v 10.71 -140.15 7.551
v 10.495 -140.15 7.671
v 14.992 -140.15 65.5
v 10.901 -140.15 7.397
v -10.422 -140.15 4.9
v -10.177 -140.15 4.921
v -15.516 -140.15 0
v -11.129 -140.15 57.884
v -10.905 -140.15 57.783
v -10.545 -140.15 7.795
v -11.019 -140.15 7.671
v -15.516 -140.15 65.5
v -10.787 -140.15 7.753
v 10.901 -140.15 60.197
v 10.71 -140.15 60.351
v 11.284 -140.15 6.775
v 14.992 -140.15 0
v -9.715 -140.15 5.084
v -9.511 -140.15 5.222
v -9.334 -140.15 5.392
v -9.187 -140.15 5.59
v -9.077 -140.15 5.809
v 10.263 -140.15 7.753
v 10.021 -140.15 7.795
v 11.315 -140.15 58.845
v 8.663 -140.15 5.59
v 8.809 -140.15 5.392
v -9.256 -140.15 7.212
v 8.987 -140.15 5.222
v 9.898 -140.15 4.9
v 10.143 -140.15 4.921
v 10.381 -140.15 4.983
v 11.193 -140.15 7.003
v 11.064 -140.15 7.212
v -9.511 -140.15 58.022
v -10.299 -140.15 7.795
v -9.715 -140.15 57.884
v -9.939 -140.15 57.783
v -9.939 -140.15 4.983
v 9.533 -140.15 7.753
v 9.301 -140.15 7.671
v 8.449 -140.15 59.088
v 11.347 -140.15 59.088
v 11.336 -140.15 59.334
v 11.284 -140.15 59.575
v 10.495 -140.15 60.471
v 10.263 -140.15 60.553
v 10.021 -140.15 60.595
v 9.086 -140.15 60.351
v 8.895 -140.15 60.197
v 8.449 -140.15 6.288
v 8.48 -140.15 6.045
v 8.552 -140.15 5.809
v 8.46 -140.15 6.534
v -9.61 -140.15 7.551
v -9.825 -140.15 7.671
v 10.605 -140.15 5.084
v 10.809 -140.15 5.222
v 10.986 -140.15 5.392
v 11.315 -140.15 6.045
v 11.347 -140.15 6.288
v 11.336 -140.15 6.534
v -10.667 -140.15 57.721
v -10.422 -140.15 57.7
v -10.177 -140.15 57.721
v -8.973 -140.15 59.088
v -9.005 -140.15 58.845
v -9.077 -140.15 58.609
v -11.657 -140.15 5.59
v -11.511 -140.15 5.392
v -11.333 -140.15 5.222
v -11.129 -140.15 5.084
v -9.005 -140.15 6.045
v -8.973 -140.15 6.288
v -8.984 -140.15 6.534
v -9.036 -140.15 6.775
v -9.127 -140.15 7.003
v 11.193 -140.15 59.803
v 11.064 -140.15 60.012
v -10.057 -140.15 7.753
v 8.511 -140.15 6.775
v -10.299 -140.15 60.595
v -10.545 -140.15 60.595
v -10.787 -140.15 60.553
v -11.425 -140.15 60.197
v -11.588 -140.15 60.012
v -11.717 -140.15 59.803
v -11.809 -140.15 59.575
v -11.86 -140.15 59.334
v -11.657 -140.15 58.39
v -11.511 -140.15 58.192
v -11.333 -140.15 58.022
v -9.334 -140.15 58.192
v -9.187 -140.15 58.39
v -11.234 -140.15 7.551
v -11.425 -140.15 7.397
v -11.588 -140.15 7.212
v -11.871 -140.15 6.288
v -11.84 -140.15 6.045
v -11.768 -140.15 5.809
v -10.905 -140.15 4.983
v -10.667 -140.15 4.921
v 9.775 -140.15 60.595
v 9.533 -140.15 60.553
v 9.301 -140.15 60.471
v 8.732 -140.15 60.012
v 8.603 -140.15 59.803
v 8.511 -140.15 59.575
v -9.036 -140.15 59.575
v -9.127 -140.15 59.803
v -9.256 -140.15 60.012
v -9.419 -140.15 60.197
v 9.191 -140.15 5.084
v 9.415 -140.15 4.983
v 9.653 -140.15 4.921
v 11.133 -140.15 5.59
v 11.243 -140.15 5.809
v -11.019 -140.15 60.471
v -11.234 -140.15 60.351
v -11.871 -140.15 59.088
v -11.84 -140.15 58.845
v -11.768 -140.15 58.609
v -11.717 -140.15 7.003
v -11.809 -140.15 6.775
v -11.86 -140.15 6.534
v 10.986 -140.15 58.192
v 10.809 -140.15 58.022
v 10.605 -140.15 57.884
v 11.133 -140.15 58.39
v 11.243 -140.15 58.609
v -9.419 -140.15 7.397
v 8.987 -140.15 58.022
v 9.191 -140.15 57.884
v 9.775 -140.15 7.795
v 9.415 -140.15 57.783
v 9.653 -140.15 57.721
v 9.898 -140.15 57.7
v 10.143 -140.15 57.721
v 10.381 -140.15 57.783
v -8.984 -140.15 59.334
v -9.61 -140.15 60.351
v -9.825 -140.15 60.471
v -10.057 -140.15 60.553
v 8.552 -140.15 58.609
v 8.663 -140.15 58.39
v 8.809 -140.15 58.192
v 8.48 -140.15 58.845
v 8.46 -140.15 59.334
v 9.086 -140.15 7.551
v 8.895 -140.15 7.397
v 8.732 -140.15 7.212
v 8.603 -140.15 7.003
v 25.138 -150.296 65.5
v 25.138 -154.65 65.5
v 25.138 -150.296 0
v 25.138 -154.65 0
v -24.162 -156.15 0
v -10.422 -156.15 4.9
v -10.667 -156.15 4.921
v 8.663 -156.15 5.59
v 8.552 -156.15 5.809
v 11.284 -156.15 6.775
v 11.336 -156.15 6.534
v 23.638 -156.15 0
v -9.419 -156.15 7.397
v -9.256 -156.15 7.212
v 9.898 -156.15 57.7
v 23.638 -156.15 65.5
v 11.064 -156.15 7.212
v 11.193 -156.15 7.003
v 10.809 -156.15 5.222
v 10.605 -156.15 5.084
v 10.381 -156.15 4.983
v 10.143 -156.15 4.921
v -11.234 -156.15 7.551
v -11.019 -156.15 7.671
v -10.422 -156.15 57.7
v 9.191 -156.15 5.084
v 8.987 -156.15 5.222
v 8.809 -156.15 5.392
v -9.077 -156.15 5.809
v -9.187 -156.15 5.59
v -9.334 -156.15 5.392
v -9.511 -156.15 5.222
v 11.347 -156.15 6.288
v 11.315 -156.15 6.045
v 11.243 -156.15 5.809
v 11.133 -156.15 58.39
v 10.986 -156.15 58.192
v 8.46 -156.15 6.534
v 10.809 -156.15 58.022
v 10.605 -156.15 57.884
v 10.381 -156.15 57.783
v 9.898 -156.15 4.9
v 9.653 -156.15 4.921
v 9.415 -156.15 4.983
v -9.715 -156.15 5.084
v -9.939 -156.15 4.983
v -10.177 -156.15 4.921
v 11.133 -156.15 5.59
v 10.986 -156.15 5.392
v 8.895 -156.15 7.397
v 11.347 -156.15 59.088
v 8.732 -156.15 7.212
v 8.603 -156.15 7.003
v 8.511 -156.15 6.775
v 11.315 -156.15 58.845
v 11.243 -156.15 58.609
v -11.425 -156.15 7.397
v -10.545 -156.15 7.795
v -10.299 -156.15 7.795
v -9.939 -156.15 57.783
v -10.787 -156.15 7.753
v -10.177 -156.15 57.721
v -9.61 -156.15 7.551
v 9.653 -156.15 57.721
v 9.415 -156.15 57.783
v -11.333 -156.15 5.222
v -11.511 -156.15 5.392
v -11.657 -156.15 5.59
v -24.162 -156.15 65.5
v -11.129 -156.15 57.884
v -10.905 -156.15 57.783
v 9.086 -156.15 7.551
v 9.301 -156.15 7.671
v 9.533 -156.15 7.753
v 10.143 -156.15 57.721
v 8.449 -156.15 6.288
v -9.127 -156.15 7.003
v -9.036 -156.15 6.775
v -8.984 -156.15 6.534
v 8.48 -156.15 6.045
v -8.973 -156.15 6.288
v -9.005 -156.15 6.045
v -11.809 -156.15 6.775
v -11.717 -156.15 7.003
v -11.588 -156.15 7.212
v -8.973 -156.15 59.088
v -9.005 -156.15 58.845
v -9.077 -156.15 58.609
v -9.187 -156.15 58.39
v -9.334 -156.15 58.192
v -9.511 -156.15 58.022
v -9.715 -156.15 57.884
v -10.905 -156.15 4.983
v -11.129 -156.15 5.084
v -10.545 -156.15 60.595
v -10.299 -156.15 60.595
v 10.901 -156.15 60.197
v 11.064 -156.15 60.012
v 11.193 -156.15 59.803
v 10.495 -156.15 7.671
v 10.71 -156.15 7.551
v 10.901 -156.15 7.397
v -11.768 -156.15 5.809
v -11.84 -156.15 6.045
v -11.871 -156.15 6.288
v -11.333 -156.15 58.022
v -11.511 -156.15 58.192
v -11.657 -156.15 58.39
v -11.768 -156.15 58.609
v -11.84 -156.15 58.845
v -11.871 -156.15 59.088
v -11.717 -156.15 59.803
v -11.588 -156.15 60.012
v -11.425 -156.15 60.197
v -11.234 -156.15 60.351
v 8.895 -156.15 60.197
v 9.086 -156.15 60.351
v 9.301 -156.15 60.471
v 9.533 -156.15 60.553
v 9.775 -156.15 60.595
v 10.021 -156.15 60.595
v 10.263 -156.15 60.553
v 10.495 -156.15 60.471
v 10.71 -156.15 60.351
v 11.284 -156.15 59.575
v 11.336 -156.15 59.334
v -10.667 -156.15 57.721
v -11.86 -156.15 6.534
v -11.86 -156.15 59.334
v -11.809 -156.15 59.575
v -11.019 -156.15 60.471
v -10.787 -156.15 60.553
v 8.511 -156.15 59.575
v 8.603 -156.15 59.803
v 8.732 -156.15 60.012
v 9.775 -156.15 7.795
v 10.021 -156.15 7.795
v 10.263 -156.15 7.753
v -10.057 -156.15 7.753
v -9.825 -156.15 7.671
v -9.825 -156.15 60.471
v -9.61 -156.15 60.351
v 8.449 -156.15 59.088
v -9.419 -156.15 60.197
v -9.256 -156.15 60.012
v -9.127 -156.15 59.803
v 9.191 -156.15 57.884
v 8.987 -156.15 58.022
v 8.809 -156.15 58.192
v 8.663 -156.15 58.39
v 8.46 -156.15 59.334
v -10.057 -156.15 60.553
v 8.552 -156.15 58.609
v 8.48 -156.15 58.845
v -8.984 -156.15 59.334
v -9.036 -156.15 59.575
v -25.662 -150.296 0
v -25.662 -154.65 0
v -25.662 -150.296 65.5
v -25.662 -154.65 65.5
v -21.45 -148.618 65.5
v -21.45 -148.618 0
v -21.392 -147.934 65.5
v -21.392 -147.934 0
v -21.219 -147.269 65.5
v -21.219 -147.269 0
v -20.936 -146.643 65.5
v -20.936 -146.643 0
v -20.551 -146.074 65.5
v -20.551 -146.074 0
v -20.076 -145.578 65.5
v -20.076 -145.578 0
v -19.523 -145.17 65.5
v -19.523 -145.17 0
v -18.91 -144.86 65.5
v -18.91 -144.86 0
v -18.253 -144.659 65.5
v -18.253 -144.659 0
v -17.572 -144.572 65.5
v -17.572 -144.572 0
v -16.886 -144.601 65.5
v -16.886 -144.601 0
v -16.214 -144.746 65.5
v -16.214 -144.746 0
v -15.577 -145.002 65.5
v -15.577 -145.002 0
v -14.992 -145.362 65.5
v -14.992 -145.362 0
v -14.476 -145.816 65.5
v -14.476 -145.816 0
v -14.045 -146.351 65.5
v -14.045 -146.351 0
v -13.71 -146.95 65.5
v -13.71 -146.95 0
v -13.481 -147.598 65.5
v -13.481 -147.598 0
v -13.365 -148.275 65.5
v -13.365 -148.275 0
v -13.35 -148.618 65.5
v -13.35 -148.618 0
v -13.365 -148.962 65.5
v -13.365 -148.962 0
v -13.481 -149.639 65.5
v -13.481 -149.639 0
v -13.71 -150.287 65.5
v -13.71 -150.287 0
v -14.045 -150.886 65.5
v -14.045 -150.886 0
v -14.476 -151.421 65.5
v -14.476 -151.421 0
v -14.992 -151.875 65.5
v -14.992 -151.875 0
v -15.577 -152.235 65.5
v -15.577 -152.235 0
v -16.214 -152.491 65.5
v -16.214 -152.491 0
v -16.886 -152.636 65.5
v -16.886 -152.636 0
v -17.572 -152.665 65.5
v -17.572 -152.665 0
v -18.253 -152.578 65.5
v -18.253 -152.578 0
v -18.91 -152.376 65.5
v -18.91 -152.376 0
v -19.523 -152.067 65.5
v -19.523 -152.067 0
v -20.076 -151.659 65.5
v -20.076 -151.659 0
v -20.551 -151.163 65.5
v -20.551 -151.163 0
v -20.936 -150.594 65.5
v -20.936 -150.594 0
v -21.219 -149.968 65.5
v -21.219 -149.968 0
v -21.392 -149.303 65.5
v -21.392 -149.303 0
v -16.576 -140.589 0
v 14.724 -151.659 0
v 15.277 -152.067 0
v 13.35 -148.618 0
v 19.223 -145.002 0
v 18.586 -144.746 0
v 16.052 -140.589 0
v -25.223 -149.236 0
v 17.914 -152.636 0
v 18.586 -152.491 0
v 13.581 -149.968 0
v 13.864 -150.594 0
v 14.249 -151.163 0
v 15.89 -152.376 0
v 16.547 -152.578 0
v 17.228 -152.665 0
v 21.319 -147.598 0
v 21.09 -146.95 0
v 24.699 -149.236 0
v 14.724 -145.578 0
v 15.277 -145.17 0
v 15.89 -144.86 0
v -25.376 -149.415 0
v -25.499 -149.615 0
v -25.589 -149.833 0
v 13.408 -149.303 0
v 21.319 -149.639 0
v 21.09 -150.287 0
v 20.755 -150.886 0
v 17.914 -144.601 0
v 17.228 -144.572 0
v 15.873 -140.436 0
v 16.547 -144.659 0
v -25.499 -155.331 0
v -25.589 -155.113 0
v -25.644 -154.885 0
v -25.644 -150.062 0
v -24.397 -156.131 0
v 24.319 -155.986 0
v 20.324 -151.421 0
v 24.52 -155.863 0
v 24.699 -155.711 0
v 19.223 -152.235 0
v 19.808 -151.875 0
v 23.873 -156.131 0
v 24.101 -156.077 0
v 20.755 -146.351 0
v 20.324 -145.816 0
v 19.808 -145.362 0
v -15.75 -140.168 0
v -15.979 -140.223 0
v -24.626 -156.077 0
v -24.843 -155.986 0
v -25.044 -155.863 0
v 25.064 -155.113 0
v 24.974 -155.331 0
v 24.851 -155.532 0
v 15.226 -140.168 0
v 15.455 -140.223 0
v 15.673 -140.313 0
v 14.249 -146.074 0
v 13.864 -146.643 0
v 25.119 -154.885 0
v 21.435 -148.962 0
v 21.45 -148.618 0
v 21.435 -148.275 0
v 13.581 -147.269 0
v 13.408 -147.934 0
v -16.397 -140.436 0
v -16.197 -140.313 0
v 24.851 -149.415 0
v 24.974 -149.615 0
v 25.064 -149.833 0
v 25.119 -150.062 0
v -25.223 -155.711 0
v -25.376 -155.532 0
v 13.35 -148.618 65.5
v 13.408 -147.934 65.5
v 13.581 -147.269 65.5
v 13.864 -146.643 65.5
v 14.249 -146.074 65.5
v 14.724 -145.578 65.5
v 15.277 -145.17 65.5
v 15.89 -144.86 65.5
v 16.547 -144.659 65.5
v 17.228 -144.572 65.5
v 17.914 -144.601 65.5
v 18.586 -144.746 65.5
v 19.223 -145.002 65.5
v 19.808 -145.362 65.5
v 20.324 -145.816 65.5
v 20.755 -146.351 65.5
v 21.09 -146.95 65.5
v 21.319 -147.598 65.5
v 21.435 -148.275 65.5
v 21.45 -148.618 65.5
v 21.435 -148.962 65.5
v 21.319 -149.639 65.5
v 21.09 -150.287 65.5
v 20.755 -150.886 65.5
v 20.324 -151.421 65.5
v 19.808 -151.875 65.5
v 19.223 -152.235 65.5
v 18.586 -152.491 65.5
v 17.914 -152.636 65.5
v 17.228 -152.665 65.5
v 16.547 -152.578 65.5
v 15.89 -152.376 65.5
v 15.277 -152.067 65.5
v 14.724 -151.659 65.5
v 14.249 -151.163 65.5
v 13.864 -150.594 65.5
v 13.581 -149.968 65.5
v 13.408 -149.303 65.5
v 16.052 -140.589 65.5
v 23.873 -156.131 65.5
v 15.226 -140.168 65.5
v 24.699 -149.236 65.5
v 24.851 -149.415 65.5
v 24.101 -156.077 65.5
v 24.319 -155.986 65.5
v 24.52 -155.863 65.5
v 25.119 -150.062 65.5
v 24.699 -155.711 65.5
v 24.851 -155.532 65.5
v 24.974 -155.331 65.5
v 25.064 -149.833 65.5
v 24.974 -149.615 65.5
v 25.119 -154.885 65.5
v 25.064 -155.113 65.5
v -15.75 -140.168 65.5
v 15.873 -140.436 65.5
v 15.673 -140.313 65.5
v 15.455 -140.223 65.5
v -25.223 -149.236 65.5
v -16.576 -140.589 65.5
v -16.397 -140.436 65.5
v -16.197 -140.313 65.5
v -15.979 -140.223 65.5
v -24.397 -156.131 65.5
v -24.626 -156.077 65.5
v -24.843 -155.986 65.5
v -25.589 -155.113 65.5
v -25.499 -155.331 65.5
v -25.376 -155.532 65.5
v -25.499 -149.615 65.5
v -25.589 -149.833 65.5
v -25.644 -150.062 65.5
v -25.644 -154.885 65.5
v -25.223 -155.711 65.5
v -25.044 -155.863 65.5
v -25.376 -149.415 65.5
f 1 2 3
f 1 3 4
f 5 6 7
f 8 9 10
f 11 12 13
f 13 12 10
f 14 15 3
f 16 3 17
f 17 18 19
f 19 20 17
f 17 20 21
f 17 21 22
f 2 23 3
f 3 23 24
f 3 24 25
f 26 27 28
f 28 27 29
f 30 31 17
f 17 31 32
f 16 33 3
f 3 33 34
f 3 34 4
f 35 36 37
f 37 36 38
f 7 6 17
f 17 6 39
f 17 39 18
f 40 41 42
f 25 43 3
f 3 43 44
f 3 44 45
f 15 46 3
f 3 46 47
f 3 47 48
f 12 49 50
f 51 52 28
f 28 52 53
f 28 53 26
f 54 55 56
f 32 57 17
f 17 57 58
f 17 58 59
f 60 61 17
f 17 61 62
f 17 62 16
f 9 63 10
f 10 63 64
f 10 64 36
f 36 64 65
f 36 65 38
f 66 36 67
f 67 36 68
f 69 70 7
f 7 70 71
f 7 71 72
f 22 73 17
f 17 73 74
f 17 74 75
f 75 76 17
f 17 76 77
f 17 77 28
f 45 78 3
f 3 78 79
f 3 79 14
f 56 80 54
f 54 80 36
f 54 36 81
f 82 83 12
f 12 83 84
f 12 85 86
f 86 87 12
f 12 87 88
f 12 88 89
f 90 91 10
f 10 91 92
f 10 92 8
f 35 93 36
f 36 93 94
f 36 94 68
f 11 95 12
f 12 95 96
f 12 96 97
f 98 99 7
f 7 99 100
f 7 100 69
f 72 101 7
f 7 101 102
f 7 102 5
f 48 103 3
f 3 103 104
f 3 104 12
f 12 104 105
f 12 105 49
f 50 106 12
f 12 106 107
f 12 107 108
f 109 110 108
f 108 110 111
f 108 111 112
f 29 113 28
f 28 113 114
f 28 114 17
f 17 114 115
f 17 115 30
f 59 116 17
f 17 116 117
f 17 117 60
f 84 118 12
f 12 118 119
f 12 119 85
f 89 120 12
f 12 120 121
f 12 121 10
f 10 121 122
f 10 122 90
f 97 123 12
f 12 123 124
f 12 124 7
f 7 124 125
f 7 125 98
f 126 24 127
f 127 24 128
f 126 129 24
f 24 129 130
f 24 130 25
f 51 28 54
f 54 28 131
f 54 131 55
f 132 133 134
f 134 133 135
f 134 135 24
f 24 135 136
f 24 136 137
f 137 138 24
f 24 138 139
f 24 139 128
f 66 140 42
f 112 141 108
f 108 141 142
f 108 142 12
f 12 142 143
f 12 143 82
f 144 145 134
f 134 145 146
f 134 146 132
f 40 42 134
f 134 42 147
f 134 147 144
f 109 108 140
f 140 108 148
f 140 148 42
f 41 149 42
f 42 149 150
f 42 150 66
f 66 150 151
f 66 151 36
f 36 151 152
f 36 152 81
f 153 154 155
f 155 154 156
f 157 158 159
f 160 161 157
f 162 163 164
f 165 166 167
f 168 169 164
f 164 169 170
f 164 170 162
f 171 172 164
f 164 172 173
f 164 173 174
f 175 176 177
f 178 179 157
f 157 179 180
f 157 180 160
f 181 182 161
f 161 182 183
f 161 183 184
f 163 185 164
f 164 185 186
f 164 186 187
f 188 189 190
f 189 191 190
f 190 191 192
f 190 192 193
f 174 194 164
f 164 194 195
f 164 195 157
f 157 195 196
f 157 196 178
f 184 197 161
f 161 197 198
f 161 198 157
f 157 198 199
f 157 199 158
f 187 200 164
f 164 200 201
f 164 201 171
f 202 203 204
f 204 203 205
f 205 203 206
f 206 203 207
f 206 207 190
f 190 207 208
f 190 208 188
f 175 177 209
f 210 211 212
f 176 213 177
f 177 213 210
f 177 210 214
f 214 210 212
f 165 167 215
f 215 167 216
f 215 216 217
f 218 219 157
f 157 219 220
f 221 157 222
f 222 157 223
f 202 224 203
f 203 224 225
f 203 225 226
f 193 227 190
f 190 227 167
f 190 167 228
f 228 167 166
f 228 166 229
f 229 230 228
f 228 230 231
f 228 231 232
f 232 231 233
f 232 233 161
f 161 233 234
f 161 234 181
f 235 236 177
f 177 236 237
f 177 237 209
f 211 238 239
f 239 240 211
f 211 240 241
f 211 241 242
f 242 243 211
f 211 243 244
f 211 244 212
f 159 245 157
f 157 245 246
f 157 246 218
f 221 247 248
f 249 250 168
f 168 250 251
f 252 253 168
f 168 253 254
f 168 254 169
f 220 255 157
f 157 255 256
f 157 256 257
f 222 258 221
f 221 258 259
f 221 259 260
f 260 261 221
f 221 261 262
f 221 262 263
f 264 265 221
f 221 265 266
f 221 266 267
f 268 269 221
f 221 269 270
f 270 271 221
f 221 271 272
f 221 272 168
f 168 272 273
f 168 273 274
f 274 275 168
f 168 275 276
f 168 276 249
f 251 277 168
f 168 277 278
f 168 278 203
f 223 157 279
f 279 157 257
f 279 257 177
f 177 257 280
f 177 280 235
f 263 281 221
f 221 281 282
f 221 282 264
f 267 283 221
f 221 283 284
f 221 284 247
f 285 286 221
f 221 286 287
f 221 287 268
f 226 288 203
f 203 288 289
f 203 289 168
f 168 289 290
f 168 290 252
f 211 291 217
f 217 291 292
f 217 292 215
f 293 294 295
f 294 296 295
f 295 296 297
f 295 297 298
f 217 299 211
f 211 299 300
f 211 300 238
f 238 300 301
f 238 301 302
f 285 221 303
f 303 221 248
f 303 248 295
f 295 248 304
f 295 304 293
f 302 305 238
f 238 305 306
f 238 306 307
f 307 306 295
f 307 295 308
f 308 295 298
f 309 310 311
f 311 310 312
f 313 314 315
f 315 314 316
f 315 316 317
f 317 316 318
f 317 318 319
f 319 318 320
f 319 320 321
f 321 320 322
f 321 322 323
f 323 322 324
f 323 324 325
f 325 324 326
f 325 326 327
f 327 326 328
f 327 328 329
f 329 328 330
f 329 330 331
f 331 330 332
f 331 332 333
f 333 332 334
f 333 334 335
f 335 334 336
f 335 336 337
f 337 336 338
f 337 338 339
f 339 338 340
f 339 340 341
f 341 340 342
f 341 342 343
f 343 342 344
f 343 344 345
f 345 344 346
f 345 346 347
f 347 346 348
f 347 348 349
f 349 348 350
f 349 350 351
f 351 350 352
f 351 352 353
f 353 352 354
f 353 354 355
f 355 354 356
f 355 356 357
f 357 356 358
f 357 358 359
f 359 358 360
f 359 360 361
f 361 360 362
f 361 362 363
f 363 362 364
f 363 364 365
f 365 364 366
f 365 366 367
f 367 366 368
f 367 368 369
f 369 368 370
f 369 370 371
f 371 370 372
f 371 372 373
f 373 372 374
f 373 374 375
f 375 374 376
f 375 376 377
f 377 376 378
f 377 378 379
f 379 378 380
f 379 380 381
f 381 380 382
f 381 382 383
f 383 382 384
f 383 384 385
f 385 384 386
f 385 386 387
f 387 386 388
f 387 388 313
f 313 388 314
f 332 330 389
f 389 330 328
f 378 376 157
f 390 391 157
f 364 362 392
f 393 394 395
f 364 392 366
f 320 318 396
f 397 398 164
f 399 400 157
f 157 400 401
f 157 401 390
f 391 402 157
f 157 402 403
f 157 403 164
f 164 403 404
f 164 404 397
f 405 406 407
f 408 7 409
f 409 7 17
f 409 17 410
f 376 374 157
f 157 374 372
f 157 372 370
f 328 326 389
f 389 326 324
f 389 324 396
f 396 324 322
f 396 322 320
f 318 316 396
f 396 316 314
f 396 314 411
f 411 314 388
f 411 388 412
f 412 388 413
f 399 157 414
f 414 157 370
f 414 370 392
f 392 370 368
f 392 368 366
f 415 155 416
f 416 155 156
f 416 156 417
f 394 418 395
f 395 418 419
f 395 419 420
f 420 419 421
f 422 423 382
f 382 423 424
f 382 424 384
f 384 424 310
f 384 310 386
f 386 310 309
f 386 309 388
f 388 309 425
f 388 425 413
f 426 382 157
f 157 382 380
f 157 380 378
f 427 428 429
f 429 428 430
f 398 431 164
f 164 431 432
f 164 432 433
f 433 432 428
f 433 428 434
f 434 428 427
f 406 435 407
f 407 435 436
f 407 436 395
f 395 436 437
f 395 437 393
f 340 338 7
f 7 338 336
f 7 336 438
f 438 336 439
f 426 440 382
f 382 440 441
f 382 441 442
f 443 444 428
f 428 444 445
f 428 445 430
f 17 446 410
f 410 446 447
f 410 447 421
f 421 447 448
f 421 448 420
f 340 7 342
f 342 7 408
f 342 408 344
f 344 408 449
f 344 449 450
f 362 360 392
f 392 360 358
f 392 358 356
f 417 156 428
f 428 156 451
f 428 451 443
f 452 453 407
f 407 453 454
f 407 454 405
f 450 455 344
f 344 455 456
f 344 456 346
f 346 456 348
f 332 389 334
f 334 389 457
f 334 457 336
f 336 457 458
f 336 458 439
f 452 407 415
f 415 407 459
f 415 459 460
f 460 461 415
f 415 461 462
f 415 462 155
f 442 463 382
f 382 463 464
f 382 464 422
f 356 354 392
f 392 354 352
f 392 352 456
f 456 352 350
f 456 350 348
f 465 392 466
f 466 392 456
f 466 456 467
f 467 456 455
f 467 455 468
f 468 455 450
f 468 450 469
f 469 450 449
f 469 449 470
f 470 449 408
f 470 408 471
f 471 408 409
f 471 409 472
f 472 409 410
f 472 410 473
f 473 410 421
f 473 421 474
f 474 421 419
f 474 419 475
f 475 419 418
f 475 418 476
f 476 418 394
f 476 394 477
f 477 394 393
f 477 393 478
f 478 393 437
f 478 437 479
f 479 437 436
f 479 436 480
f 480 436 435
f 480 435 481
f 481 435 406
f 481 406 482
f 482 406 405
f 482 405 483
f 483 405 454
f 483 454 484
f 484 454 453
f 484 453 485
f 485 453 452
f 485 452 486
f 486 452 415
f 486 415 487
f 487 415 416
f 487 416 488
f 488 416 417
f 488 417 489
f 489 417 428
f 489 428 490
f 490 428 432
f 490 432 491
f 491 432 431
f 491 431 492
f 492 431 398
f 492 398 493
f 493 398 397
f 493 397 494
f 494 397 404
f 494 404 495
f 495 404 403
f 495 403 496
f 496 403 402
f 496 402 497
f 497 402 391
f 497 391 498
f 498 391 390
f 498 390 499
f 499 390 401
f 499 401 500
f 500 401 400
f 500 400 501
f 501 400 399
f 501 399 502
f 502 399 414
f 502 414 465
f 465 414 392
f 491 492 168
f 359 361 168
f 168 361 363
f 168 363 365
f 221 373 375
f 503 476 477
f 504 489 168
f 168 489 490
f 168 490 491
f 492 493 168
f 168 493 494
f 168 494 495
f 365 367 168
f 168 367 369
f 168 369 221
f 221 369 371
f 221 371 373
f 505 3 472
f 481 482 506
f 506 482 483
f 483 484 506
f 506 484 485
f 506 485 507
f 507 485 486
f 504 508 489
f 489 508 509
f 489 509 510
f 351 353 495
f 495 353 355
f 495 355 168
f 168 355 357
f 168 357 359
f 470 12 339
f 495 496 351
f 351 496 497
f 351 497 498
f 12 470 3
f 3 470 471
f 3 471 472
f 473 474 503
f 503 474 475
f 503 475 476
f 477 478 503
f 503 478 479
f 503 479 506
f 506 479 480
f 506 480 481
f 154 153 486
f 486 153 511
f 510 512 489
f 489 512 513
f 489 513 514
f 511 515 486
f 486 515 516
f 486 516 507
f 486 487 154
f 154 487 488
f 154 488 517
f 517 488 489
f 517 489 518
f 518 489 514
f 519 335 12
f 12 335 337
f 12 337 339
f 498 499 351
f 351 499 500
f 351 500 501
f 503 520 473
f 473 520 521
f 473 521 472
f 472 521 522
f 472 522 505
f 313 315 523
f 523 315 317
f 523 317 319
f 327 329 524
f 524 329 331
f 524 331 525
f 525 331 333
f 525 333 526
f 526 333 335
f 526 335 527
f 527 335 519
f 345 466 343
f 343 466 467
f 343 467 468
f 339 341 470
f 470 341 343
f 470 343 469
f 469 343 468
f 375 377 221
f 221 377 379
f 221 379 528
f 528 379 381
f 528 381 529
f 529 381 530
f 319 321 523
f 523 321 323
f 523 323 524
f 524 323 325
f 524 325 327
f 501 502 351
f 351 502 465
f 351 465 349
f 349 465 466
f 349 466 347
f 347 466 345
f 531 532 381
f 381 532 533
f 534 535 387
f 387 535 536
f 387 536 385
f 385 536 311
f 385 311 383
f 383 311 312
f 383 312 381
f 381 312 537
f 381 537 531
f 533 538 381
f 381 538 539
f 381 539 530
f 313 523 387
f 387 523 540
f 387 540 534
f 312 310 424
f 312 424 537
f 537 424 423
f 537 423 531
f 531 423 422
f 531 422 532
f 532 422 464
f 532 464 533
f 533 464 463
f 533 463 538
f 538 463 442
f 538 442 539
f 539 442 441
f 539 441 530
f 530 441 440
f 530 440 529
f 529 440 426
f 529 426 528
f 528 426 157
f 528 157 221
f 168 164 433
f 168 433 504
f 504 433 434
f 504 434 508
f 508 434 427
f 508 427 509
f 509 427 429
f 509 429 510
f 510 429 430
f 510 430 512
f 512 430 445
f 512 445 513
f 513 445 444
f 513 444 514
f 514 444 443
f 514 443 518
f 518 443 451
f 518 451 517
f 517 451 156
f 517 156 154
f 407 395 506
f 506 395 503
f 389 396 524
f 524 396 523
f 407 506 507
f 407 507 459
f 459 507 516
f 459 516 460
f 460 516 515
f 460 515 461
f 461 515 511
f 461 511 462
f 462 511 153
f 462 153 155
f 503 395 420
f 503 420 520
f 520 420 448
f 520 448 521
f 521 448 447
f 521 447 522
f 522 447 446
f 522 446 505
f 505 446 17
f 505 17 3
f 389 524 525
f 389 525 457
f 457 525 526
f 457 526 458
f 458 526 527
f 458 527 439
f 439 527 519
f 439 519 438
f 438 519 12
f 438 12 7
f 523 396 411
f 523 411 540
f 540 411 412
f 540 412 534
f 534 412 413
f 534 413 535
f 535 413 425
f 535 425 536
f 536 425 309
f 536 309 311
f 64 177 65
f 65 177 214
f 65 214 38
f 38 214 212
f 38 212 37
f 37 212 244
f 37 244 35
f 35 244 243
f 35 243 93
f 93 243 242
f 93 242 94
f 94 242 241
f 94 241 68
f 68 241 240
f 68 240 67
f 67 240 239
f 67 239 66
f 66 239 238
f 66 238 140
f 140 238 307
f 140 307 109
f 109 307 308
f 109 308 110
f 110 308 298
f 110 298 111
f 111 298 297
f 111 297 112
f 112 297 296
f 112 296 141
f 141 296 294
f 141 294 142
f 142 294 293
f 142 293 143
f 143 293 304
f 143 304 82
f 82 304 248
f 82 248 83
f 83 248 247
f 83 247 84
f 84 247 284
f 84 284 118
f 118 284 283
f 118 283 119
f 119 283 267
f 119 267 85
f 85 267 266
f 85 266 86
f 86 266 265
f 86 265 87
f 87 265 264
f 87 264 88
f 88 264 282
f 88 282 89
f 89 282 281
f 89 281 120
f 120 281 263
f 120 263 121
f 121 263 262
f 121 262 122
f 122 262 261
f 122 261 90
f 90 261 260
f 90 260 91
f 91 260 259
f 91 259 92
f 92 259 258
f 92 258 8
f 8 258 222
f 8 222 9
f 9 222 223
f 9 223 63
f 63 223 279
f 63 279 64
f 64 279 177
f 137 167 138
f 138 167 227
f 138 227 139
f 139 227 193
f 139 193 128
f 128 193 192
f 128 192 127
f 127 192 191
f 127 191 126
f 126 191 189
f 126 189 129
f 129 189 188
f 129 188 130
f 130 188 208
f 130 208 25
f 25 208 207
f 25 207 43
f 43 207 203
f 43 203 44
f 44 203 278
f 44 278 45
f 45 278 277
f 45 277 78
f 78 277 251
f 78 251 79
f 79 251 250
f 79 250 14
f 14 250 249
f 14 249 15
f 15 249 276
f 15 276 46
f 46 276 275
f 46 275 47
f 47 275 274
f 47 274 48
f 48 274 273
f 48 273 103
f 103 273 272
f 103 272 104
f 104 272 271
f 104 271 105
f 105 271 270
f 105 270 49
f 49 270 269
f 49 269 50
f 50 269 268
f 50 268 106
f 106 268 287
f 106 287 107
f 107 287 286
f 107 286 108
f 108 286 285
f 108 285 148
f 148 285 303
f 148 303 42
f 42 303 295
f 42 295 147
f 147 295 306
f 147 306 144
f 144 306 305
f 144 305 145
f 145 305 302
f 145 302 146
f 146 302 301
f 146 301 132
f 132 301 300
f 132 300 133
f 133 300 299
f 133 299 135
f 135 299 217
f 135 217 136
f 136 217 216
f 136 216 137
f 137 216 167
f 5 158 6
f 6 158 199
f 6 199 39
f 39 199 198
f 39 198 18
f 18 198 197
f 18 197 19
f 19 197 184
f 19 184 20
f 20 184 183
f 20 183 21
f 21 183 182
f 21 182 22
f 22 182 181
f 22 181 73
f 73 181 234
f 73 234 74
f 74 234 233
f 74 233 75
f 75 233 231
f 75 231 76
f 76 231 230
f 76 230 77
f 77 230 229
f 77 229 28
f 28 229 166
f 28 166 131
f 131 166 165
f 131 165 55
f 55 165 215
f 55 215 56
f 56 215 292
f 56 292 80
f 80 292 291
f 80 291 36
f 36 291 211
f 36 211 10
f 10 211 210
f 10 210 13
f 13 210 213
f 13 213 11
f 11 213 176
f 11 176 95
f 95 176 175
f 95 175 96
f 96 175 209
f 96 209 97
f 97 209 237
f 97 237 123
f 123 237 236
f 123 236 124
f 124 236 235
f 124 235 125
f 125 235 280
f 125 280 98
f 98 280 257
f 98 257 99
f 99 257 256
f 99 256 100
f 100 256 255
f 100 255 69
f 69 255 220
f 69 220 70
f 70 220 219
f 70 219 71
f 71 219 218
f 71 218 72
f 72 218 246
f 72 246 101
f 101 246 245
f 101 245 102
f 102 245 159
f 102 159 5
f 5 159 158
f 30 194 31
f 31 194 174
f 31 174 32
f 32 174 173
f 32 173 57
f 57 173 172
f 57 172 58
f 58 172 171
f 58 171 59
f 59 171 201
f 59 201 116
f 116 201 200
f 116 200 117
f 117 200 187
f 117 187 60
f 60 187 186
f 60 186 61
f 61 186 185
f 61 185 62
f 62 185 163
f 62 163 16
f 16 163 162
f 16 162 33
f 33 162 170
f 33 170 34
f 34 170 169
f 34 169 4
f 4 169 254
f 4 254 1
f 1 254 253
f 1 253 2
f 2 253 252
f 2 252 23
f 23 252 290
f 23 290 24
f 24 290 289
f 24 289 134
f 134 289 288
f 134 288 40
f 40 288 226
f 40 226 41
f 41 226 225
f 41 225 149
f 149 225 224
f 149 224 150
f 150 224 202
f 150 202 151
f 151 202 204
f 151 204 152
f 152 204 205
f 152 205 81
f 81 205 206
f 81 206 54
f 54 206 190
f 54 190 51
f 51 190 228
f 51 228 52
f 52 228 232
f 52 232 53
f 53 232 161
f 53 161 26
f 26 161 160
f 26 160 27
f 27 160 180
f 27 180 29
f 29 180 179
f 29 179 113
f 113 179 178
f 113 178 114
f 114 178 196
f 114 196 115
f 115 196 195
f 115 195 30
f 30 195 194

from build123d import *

# Parameters (mm, degrees)
SKETCH1_W           = 50.8
SKETCH1_H           = 16
SKETCH1_R           = 4.05
BOSS_EXTRUDE1_DEPTH = 65.5
FILLET1_R           = 1.5
CHAMFER1_SIZE       = 9.525
FILLET2_R           = 1.5
SKETCH3_R           = 1.45
CUT_EXTRUDE1_DEPTH  = 17


with BuildPart() as part:
    # Sketch1 → Boss-Extrude1 (new body)
    with BuildSketch(Plane.XY):
        with Locations((-0.262087977, -148.149956673)):
            Rectangle(SKETCH1_W, SKETCH1_H)
        with Locations((-17.4, -148.618426491)):
            Circle(SKETCH1_R, mode=Mode.SUBTRACT)
        with Locations((17.4, -148.618426491)):
            Circle(SKETCH1_R, mode=Mode.SUBTRACT)
    extrude(amount=BOSS_EXTRUDE1_DEPTH)

    # Fillet1
    fillet1_edges = [part.edges().sort_by_distance(p)[0] for p in [
        (25.137912023, -156.149956673, 32.75),
        (-25.662087977, -156.149956673, 32.75),
    ]]
    fillet(fillet1_edges, radius=FILLET1_R)

    # Chamfer1
    chamfer1_edges = [part.edges().sort_by_distance(p)[0] for p in [
        (-25.662087977, -140.149956673, 32.75),
        (25.137912023, -140.149956673, 32.75),
    ]]
    chamfer(chamfer1_edges, length=CHAMFER1_SIZE)

    # Fillet2
    fillet2_edges = [part.edges().sort_by_distance(p)[0] for p in [
        (-16.137087977, -140.149956673, 32.75),
        (15.612912023, -140.149956673, 32.75),
        (25.137912023, -149.674956673, 32.75),
        (-25.662087977, -149.674956673, 32.75),
    ]]
    fillet(fillet2_edges, radius=FILLET2_R)

    # Sketch3 → Cut-Extrude1 (cut, through all)
    with BuildSketch(Plane.XZ.offset(156.149956673)):
        with Locations((-10.422087977, 59.15)):
            Circle(SKETCH3_R)
        with Locations((9.897912023, 59.15)):
            Circle(SKETCH3_R)
        with Locations((-10.422087977, 6.35)):
            Circle(SKETCH3_R)
        with Locations((9.897912023, 6.35)):
            Circle(SKETCH3_R)
    extrude(amount=-CUT_EXTRUDE1_DEPTH, mode=Mode.SUBTRACT)


solid = part.part
